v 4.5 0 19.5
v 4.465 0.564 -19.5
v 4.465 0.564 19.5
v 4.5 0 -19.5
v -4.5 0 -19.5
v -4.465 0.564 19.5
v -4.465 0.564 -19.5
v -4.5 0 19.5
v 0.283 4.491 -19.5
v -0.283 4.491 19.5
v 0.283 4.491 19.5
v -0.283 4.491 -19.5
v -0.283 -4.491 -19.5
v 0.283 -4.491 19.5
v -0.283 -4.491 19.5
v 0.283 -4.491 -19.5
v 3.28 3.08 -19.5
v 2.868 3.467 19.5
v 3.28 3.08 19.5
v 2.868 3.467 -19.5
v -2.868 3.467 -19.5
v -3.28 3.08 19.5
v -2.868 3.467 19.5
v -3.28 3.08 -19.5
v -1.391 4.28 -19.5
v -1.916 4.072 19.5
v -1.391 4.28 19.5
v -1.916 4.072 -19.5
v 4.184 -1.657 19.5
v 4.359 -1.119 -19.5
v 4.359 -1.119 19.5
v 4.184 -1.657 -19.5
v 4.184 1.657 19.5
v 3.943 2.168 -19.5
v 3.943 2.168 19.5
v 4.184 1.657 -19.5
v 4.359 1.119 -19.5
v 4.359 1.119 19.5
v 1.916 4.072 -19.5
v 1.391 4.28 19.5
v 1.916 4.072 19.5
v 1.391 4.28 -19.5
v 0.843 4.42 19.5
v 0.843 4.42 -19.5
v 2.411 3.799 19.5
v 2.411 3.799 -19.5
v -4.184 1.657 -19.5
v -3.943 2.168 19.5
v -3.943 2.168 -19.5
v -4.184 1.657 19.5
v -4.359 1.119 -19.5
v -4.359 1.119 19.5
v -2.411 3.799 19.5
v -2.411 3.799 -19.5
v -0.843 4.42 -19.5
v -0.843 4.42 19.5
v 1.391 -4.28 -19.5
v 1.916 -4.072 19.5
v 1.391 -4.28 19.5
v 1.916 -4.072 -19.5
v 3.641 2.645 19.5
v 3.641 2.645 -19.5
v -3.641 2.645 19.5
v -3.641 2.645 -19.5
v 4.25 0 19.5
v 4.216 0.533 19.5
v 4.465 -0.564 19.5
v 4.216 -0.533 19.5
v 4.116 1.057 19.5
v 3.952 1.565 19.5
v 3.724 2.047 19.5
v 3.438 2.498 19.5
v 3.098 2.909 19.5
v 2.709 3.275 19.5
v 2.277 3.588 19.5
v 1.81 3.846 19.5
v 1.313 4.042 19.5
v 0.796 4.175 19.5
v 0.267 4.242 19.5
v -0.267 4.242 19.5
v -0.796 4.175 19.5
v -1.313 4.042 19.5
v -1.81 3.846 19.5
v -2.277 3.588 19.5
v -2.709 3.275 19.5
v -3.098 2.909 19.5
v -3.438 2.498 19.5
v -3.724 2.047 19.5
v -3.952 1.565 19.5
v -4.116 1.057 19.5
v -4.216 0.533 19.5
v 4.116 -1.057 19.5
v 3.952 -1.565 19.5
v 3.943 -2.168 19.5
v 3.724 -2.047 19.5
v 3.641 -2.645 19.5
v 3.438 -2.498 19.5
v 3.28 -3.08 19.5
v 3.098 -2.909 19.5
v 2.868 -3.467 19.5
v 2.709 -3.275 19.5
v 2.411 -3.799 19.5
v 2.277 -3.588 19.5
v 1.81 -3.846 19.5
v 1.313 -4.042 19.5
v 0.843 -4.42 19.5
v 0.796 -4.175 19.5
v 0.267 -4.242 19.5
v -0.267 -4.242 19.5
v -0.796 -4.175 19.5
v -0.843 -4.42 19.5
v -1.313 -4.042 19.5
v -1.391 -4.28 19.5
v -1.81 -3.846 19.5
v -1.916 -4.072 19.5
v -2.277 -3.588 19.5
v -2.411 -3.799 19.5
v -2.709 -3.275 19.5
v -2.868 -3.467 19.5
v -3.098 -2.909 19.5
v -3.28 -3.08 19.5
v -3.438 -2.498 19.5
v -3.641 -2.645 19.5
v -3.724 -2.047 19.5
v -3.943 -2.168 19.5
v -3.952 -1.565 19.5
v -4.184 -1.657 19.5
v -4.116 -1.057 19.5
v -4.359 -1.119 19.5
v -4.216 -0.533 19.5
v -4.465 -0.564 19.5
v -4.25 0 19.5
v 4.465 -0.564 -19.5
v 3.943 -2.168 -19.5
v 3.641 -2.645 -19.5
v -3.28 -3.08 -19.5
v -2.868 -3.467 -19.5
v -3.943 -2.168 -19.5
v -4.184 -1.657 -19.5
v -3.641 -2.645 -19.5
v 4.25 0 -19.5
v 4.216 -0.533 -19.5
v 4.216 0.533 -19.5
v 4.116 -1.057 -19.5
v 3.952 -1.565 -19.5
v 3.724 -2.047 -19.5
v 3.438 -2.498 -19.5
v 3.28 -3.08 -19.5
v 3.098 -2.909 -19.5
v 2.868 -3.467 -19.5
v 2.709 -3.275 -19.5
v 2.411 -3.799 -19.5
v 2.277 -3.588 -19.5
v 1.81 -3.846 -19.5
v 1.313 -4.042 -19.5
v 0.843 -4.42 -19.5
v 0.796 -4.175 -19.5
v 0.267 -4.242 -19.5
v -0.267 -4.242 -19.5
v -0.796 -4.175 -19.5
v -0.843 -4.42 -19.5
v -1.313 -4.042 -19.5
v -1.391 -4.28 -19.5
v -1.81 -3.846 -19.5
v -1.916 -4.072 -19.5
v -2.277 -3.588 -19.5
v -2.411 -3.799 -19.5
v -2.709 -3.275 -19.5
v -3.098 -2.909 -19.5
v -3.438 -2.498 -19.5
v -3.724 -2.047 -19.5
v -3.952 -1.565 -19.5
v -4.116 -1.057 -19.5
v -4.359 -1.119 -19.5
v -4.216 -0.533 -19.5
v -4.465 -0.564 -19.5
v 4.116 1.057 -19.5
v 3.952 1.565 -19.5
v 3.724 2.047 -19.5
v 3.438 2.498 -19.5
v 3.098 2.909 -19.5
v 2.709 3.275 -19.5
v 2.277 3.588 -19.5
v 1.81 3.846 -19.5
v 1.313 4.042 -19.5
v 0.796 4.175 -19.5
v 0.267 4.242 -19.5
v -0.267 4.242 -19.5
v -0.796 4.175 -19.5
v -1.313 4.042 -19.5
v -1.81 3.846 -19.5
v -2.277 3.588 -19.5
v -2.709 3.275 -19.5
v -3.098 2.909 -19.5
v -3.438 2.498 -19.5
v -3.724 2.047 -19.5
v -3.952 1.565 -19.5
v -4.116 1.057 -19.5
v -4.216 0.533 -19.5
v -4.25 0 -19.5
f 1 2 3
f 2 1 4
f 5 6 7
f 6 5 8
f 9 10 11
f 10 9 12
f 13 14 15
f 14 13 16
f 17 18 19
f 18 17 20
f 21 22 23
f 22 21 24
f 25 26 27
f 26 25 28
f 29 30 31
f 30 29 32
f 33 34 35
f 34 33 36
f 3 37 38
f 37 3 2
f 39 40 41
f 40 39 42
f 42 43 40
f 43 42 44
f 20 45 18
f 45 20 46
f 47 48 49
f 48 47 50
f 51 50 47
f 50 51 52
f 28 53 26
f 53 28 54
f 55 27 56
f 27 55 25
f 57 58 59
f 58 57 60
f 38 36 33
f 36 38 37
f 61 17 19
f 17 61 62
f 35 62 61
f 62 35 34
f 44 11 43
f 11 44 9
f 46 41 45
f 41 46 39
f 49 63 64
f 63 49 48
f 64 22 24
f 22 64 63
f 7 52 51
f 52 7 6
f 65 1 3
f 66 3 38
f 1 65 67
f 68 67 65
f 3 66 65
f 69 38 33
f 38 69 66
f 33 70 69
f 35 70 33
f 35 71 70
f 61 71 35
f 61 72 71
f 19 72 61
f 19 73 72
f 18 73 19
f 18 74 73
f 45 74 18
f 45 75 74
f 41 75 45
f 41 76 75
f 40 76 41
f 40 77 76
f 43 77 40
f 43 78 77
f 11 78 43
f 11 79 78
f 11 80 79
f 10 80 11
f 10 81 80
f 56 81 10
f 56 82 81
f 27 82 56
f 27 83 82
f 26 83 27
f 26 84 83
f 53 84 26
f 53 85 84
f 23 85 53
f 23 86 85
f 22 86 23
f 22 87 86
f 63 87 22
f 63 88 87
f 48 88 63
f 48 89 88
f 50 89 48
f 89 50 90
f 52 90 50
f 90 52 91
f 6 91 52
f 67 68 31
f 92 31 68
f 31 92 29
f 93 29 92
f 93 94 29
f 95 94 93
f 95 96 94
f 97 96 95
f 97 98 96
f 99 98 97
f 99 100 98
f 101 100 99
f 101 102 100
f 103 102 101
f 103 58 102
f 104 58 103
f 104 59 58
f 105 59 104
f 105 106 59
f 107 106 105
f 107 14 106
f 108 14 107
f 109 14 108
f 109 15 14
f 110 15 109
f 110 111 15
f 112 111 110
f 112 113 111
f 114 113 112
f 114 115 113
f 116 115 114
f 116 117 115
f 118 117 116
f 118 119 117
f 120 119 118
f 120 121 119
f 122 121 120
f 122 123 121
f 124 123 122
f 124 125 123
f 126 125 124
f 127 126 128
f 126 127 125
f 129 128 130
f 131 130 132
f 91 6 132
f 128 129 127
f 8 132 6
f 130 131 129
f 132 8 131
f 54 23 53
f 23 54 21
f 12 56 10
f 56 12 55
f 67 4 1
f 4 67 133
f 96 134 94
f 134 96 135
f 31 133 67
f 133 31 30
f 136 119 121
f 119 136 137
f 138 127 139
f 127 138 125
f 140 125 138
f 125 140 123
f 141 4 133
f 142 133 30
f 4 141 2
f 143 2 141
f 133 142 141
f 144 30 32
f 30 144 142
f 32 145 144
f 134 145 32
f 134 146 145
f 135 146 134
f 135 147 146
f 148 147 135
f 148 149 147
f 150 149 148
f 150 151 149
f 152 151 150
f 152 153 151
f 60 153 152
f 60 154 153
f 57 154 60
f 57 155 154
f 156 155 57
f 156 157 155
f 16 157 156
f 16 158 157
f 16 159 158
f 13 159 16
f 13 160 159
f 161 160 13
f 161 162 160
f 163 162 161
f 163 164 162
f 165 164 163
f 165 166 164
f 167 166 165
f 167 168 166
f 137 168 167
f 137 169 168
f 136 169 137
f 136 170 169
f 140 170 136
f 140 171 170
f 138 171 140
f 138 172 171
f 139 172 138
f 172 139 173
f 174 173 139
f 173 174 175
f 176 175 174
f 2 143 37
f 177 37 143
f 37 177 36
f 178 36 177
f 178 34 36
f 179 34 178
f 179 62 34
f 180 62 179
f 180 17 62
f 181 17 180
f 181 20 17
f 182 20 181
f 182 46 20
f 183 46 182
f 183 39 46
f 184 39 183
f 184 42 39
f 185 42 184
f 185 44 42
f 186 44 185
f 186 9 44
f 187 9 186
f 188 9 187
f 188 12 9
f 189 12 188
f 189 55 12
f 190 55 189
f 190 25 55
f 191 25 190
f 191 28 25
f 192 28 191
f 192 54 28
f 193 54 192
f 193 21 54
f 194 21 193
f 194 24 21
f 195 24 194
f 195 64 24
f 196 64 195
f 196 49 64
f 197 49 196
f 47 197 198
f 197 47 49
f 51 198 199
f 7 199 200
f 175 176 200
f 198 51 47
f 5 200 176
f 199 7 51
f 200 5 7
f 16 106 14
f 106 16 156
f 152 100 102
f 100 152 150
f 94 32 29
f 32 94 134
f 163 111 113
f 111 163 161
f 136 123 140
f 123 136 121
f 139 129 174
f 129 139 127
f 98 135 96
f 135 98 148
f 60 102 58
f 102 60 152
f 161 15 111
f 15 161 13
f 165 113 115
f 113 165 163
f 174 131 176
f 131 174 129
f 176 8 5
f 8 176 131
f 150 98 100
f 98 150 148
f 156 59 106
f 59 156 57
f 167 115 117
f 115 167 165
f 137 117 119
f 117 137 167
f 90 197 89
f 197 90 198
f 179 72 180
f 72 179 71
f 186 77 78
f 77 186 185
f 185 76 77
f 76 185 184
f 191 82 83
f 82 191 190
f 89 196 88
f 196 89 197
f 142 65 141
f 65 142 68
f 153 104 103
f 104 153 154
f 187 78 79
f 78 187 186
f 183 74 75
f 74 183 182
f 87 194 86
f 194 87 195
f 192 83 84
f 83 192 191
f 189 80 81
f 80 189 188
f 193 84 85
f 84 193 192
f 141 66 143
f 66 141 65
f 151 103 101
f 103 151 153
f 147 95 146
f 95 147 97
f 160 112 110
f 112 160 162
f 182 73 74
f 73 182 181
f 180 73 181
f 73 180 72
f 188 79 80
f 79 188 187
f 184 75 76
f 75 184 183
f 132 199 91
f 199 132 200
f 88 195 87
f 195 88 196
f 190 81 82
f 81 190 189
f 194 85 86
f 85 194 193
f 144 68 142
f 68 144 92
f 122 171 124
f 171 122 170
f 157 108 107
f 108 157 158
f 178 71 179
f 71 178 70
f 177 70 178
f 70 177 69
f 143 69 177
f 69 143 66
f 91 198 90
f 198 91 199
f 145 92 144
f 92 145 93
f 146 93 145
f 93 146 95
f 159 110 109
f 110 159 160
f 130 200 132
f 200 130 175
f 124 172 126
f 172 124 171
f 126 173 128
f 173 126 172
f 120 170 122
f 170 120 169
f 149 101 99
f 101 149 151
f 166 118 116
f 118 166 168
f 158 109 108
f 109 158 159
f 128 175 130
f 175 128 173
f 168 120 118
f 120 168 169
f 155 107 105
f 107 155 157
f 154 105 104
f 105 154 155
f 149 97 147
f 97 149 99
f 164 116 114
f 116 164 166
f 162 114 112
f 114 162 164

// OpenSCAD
$fn = 50;


difference() {
	union() {
		translate(v = [0, 0, -19.5000000000]) {
			cylinder(h = 39, r = 4.5000000000);
		}
	}
	union() {
		translate(v = [0, 0, -100.0000000000]) {
			cylinder(h = 200, r = 4.2500000000);
		}
	}
}
